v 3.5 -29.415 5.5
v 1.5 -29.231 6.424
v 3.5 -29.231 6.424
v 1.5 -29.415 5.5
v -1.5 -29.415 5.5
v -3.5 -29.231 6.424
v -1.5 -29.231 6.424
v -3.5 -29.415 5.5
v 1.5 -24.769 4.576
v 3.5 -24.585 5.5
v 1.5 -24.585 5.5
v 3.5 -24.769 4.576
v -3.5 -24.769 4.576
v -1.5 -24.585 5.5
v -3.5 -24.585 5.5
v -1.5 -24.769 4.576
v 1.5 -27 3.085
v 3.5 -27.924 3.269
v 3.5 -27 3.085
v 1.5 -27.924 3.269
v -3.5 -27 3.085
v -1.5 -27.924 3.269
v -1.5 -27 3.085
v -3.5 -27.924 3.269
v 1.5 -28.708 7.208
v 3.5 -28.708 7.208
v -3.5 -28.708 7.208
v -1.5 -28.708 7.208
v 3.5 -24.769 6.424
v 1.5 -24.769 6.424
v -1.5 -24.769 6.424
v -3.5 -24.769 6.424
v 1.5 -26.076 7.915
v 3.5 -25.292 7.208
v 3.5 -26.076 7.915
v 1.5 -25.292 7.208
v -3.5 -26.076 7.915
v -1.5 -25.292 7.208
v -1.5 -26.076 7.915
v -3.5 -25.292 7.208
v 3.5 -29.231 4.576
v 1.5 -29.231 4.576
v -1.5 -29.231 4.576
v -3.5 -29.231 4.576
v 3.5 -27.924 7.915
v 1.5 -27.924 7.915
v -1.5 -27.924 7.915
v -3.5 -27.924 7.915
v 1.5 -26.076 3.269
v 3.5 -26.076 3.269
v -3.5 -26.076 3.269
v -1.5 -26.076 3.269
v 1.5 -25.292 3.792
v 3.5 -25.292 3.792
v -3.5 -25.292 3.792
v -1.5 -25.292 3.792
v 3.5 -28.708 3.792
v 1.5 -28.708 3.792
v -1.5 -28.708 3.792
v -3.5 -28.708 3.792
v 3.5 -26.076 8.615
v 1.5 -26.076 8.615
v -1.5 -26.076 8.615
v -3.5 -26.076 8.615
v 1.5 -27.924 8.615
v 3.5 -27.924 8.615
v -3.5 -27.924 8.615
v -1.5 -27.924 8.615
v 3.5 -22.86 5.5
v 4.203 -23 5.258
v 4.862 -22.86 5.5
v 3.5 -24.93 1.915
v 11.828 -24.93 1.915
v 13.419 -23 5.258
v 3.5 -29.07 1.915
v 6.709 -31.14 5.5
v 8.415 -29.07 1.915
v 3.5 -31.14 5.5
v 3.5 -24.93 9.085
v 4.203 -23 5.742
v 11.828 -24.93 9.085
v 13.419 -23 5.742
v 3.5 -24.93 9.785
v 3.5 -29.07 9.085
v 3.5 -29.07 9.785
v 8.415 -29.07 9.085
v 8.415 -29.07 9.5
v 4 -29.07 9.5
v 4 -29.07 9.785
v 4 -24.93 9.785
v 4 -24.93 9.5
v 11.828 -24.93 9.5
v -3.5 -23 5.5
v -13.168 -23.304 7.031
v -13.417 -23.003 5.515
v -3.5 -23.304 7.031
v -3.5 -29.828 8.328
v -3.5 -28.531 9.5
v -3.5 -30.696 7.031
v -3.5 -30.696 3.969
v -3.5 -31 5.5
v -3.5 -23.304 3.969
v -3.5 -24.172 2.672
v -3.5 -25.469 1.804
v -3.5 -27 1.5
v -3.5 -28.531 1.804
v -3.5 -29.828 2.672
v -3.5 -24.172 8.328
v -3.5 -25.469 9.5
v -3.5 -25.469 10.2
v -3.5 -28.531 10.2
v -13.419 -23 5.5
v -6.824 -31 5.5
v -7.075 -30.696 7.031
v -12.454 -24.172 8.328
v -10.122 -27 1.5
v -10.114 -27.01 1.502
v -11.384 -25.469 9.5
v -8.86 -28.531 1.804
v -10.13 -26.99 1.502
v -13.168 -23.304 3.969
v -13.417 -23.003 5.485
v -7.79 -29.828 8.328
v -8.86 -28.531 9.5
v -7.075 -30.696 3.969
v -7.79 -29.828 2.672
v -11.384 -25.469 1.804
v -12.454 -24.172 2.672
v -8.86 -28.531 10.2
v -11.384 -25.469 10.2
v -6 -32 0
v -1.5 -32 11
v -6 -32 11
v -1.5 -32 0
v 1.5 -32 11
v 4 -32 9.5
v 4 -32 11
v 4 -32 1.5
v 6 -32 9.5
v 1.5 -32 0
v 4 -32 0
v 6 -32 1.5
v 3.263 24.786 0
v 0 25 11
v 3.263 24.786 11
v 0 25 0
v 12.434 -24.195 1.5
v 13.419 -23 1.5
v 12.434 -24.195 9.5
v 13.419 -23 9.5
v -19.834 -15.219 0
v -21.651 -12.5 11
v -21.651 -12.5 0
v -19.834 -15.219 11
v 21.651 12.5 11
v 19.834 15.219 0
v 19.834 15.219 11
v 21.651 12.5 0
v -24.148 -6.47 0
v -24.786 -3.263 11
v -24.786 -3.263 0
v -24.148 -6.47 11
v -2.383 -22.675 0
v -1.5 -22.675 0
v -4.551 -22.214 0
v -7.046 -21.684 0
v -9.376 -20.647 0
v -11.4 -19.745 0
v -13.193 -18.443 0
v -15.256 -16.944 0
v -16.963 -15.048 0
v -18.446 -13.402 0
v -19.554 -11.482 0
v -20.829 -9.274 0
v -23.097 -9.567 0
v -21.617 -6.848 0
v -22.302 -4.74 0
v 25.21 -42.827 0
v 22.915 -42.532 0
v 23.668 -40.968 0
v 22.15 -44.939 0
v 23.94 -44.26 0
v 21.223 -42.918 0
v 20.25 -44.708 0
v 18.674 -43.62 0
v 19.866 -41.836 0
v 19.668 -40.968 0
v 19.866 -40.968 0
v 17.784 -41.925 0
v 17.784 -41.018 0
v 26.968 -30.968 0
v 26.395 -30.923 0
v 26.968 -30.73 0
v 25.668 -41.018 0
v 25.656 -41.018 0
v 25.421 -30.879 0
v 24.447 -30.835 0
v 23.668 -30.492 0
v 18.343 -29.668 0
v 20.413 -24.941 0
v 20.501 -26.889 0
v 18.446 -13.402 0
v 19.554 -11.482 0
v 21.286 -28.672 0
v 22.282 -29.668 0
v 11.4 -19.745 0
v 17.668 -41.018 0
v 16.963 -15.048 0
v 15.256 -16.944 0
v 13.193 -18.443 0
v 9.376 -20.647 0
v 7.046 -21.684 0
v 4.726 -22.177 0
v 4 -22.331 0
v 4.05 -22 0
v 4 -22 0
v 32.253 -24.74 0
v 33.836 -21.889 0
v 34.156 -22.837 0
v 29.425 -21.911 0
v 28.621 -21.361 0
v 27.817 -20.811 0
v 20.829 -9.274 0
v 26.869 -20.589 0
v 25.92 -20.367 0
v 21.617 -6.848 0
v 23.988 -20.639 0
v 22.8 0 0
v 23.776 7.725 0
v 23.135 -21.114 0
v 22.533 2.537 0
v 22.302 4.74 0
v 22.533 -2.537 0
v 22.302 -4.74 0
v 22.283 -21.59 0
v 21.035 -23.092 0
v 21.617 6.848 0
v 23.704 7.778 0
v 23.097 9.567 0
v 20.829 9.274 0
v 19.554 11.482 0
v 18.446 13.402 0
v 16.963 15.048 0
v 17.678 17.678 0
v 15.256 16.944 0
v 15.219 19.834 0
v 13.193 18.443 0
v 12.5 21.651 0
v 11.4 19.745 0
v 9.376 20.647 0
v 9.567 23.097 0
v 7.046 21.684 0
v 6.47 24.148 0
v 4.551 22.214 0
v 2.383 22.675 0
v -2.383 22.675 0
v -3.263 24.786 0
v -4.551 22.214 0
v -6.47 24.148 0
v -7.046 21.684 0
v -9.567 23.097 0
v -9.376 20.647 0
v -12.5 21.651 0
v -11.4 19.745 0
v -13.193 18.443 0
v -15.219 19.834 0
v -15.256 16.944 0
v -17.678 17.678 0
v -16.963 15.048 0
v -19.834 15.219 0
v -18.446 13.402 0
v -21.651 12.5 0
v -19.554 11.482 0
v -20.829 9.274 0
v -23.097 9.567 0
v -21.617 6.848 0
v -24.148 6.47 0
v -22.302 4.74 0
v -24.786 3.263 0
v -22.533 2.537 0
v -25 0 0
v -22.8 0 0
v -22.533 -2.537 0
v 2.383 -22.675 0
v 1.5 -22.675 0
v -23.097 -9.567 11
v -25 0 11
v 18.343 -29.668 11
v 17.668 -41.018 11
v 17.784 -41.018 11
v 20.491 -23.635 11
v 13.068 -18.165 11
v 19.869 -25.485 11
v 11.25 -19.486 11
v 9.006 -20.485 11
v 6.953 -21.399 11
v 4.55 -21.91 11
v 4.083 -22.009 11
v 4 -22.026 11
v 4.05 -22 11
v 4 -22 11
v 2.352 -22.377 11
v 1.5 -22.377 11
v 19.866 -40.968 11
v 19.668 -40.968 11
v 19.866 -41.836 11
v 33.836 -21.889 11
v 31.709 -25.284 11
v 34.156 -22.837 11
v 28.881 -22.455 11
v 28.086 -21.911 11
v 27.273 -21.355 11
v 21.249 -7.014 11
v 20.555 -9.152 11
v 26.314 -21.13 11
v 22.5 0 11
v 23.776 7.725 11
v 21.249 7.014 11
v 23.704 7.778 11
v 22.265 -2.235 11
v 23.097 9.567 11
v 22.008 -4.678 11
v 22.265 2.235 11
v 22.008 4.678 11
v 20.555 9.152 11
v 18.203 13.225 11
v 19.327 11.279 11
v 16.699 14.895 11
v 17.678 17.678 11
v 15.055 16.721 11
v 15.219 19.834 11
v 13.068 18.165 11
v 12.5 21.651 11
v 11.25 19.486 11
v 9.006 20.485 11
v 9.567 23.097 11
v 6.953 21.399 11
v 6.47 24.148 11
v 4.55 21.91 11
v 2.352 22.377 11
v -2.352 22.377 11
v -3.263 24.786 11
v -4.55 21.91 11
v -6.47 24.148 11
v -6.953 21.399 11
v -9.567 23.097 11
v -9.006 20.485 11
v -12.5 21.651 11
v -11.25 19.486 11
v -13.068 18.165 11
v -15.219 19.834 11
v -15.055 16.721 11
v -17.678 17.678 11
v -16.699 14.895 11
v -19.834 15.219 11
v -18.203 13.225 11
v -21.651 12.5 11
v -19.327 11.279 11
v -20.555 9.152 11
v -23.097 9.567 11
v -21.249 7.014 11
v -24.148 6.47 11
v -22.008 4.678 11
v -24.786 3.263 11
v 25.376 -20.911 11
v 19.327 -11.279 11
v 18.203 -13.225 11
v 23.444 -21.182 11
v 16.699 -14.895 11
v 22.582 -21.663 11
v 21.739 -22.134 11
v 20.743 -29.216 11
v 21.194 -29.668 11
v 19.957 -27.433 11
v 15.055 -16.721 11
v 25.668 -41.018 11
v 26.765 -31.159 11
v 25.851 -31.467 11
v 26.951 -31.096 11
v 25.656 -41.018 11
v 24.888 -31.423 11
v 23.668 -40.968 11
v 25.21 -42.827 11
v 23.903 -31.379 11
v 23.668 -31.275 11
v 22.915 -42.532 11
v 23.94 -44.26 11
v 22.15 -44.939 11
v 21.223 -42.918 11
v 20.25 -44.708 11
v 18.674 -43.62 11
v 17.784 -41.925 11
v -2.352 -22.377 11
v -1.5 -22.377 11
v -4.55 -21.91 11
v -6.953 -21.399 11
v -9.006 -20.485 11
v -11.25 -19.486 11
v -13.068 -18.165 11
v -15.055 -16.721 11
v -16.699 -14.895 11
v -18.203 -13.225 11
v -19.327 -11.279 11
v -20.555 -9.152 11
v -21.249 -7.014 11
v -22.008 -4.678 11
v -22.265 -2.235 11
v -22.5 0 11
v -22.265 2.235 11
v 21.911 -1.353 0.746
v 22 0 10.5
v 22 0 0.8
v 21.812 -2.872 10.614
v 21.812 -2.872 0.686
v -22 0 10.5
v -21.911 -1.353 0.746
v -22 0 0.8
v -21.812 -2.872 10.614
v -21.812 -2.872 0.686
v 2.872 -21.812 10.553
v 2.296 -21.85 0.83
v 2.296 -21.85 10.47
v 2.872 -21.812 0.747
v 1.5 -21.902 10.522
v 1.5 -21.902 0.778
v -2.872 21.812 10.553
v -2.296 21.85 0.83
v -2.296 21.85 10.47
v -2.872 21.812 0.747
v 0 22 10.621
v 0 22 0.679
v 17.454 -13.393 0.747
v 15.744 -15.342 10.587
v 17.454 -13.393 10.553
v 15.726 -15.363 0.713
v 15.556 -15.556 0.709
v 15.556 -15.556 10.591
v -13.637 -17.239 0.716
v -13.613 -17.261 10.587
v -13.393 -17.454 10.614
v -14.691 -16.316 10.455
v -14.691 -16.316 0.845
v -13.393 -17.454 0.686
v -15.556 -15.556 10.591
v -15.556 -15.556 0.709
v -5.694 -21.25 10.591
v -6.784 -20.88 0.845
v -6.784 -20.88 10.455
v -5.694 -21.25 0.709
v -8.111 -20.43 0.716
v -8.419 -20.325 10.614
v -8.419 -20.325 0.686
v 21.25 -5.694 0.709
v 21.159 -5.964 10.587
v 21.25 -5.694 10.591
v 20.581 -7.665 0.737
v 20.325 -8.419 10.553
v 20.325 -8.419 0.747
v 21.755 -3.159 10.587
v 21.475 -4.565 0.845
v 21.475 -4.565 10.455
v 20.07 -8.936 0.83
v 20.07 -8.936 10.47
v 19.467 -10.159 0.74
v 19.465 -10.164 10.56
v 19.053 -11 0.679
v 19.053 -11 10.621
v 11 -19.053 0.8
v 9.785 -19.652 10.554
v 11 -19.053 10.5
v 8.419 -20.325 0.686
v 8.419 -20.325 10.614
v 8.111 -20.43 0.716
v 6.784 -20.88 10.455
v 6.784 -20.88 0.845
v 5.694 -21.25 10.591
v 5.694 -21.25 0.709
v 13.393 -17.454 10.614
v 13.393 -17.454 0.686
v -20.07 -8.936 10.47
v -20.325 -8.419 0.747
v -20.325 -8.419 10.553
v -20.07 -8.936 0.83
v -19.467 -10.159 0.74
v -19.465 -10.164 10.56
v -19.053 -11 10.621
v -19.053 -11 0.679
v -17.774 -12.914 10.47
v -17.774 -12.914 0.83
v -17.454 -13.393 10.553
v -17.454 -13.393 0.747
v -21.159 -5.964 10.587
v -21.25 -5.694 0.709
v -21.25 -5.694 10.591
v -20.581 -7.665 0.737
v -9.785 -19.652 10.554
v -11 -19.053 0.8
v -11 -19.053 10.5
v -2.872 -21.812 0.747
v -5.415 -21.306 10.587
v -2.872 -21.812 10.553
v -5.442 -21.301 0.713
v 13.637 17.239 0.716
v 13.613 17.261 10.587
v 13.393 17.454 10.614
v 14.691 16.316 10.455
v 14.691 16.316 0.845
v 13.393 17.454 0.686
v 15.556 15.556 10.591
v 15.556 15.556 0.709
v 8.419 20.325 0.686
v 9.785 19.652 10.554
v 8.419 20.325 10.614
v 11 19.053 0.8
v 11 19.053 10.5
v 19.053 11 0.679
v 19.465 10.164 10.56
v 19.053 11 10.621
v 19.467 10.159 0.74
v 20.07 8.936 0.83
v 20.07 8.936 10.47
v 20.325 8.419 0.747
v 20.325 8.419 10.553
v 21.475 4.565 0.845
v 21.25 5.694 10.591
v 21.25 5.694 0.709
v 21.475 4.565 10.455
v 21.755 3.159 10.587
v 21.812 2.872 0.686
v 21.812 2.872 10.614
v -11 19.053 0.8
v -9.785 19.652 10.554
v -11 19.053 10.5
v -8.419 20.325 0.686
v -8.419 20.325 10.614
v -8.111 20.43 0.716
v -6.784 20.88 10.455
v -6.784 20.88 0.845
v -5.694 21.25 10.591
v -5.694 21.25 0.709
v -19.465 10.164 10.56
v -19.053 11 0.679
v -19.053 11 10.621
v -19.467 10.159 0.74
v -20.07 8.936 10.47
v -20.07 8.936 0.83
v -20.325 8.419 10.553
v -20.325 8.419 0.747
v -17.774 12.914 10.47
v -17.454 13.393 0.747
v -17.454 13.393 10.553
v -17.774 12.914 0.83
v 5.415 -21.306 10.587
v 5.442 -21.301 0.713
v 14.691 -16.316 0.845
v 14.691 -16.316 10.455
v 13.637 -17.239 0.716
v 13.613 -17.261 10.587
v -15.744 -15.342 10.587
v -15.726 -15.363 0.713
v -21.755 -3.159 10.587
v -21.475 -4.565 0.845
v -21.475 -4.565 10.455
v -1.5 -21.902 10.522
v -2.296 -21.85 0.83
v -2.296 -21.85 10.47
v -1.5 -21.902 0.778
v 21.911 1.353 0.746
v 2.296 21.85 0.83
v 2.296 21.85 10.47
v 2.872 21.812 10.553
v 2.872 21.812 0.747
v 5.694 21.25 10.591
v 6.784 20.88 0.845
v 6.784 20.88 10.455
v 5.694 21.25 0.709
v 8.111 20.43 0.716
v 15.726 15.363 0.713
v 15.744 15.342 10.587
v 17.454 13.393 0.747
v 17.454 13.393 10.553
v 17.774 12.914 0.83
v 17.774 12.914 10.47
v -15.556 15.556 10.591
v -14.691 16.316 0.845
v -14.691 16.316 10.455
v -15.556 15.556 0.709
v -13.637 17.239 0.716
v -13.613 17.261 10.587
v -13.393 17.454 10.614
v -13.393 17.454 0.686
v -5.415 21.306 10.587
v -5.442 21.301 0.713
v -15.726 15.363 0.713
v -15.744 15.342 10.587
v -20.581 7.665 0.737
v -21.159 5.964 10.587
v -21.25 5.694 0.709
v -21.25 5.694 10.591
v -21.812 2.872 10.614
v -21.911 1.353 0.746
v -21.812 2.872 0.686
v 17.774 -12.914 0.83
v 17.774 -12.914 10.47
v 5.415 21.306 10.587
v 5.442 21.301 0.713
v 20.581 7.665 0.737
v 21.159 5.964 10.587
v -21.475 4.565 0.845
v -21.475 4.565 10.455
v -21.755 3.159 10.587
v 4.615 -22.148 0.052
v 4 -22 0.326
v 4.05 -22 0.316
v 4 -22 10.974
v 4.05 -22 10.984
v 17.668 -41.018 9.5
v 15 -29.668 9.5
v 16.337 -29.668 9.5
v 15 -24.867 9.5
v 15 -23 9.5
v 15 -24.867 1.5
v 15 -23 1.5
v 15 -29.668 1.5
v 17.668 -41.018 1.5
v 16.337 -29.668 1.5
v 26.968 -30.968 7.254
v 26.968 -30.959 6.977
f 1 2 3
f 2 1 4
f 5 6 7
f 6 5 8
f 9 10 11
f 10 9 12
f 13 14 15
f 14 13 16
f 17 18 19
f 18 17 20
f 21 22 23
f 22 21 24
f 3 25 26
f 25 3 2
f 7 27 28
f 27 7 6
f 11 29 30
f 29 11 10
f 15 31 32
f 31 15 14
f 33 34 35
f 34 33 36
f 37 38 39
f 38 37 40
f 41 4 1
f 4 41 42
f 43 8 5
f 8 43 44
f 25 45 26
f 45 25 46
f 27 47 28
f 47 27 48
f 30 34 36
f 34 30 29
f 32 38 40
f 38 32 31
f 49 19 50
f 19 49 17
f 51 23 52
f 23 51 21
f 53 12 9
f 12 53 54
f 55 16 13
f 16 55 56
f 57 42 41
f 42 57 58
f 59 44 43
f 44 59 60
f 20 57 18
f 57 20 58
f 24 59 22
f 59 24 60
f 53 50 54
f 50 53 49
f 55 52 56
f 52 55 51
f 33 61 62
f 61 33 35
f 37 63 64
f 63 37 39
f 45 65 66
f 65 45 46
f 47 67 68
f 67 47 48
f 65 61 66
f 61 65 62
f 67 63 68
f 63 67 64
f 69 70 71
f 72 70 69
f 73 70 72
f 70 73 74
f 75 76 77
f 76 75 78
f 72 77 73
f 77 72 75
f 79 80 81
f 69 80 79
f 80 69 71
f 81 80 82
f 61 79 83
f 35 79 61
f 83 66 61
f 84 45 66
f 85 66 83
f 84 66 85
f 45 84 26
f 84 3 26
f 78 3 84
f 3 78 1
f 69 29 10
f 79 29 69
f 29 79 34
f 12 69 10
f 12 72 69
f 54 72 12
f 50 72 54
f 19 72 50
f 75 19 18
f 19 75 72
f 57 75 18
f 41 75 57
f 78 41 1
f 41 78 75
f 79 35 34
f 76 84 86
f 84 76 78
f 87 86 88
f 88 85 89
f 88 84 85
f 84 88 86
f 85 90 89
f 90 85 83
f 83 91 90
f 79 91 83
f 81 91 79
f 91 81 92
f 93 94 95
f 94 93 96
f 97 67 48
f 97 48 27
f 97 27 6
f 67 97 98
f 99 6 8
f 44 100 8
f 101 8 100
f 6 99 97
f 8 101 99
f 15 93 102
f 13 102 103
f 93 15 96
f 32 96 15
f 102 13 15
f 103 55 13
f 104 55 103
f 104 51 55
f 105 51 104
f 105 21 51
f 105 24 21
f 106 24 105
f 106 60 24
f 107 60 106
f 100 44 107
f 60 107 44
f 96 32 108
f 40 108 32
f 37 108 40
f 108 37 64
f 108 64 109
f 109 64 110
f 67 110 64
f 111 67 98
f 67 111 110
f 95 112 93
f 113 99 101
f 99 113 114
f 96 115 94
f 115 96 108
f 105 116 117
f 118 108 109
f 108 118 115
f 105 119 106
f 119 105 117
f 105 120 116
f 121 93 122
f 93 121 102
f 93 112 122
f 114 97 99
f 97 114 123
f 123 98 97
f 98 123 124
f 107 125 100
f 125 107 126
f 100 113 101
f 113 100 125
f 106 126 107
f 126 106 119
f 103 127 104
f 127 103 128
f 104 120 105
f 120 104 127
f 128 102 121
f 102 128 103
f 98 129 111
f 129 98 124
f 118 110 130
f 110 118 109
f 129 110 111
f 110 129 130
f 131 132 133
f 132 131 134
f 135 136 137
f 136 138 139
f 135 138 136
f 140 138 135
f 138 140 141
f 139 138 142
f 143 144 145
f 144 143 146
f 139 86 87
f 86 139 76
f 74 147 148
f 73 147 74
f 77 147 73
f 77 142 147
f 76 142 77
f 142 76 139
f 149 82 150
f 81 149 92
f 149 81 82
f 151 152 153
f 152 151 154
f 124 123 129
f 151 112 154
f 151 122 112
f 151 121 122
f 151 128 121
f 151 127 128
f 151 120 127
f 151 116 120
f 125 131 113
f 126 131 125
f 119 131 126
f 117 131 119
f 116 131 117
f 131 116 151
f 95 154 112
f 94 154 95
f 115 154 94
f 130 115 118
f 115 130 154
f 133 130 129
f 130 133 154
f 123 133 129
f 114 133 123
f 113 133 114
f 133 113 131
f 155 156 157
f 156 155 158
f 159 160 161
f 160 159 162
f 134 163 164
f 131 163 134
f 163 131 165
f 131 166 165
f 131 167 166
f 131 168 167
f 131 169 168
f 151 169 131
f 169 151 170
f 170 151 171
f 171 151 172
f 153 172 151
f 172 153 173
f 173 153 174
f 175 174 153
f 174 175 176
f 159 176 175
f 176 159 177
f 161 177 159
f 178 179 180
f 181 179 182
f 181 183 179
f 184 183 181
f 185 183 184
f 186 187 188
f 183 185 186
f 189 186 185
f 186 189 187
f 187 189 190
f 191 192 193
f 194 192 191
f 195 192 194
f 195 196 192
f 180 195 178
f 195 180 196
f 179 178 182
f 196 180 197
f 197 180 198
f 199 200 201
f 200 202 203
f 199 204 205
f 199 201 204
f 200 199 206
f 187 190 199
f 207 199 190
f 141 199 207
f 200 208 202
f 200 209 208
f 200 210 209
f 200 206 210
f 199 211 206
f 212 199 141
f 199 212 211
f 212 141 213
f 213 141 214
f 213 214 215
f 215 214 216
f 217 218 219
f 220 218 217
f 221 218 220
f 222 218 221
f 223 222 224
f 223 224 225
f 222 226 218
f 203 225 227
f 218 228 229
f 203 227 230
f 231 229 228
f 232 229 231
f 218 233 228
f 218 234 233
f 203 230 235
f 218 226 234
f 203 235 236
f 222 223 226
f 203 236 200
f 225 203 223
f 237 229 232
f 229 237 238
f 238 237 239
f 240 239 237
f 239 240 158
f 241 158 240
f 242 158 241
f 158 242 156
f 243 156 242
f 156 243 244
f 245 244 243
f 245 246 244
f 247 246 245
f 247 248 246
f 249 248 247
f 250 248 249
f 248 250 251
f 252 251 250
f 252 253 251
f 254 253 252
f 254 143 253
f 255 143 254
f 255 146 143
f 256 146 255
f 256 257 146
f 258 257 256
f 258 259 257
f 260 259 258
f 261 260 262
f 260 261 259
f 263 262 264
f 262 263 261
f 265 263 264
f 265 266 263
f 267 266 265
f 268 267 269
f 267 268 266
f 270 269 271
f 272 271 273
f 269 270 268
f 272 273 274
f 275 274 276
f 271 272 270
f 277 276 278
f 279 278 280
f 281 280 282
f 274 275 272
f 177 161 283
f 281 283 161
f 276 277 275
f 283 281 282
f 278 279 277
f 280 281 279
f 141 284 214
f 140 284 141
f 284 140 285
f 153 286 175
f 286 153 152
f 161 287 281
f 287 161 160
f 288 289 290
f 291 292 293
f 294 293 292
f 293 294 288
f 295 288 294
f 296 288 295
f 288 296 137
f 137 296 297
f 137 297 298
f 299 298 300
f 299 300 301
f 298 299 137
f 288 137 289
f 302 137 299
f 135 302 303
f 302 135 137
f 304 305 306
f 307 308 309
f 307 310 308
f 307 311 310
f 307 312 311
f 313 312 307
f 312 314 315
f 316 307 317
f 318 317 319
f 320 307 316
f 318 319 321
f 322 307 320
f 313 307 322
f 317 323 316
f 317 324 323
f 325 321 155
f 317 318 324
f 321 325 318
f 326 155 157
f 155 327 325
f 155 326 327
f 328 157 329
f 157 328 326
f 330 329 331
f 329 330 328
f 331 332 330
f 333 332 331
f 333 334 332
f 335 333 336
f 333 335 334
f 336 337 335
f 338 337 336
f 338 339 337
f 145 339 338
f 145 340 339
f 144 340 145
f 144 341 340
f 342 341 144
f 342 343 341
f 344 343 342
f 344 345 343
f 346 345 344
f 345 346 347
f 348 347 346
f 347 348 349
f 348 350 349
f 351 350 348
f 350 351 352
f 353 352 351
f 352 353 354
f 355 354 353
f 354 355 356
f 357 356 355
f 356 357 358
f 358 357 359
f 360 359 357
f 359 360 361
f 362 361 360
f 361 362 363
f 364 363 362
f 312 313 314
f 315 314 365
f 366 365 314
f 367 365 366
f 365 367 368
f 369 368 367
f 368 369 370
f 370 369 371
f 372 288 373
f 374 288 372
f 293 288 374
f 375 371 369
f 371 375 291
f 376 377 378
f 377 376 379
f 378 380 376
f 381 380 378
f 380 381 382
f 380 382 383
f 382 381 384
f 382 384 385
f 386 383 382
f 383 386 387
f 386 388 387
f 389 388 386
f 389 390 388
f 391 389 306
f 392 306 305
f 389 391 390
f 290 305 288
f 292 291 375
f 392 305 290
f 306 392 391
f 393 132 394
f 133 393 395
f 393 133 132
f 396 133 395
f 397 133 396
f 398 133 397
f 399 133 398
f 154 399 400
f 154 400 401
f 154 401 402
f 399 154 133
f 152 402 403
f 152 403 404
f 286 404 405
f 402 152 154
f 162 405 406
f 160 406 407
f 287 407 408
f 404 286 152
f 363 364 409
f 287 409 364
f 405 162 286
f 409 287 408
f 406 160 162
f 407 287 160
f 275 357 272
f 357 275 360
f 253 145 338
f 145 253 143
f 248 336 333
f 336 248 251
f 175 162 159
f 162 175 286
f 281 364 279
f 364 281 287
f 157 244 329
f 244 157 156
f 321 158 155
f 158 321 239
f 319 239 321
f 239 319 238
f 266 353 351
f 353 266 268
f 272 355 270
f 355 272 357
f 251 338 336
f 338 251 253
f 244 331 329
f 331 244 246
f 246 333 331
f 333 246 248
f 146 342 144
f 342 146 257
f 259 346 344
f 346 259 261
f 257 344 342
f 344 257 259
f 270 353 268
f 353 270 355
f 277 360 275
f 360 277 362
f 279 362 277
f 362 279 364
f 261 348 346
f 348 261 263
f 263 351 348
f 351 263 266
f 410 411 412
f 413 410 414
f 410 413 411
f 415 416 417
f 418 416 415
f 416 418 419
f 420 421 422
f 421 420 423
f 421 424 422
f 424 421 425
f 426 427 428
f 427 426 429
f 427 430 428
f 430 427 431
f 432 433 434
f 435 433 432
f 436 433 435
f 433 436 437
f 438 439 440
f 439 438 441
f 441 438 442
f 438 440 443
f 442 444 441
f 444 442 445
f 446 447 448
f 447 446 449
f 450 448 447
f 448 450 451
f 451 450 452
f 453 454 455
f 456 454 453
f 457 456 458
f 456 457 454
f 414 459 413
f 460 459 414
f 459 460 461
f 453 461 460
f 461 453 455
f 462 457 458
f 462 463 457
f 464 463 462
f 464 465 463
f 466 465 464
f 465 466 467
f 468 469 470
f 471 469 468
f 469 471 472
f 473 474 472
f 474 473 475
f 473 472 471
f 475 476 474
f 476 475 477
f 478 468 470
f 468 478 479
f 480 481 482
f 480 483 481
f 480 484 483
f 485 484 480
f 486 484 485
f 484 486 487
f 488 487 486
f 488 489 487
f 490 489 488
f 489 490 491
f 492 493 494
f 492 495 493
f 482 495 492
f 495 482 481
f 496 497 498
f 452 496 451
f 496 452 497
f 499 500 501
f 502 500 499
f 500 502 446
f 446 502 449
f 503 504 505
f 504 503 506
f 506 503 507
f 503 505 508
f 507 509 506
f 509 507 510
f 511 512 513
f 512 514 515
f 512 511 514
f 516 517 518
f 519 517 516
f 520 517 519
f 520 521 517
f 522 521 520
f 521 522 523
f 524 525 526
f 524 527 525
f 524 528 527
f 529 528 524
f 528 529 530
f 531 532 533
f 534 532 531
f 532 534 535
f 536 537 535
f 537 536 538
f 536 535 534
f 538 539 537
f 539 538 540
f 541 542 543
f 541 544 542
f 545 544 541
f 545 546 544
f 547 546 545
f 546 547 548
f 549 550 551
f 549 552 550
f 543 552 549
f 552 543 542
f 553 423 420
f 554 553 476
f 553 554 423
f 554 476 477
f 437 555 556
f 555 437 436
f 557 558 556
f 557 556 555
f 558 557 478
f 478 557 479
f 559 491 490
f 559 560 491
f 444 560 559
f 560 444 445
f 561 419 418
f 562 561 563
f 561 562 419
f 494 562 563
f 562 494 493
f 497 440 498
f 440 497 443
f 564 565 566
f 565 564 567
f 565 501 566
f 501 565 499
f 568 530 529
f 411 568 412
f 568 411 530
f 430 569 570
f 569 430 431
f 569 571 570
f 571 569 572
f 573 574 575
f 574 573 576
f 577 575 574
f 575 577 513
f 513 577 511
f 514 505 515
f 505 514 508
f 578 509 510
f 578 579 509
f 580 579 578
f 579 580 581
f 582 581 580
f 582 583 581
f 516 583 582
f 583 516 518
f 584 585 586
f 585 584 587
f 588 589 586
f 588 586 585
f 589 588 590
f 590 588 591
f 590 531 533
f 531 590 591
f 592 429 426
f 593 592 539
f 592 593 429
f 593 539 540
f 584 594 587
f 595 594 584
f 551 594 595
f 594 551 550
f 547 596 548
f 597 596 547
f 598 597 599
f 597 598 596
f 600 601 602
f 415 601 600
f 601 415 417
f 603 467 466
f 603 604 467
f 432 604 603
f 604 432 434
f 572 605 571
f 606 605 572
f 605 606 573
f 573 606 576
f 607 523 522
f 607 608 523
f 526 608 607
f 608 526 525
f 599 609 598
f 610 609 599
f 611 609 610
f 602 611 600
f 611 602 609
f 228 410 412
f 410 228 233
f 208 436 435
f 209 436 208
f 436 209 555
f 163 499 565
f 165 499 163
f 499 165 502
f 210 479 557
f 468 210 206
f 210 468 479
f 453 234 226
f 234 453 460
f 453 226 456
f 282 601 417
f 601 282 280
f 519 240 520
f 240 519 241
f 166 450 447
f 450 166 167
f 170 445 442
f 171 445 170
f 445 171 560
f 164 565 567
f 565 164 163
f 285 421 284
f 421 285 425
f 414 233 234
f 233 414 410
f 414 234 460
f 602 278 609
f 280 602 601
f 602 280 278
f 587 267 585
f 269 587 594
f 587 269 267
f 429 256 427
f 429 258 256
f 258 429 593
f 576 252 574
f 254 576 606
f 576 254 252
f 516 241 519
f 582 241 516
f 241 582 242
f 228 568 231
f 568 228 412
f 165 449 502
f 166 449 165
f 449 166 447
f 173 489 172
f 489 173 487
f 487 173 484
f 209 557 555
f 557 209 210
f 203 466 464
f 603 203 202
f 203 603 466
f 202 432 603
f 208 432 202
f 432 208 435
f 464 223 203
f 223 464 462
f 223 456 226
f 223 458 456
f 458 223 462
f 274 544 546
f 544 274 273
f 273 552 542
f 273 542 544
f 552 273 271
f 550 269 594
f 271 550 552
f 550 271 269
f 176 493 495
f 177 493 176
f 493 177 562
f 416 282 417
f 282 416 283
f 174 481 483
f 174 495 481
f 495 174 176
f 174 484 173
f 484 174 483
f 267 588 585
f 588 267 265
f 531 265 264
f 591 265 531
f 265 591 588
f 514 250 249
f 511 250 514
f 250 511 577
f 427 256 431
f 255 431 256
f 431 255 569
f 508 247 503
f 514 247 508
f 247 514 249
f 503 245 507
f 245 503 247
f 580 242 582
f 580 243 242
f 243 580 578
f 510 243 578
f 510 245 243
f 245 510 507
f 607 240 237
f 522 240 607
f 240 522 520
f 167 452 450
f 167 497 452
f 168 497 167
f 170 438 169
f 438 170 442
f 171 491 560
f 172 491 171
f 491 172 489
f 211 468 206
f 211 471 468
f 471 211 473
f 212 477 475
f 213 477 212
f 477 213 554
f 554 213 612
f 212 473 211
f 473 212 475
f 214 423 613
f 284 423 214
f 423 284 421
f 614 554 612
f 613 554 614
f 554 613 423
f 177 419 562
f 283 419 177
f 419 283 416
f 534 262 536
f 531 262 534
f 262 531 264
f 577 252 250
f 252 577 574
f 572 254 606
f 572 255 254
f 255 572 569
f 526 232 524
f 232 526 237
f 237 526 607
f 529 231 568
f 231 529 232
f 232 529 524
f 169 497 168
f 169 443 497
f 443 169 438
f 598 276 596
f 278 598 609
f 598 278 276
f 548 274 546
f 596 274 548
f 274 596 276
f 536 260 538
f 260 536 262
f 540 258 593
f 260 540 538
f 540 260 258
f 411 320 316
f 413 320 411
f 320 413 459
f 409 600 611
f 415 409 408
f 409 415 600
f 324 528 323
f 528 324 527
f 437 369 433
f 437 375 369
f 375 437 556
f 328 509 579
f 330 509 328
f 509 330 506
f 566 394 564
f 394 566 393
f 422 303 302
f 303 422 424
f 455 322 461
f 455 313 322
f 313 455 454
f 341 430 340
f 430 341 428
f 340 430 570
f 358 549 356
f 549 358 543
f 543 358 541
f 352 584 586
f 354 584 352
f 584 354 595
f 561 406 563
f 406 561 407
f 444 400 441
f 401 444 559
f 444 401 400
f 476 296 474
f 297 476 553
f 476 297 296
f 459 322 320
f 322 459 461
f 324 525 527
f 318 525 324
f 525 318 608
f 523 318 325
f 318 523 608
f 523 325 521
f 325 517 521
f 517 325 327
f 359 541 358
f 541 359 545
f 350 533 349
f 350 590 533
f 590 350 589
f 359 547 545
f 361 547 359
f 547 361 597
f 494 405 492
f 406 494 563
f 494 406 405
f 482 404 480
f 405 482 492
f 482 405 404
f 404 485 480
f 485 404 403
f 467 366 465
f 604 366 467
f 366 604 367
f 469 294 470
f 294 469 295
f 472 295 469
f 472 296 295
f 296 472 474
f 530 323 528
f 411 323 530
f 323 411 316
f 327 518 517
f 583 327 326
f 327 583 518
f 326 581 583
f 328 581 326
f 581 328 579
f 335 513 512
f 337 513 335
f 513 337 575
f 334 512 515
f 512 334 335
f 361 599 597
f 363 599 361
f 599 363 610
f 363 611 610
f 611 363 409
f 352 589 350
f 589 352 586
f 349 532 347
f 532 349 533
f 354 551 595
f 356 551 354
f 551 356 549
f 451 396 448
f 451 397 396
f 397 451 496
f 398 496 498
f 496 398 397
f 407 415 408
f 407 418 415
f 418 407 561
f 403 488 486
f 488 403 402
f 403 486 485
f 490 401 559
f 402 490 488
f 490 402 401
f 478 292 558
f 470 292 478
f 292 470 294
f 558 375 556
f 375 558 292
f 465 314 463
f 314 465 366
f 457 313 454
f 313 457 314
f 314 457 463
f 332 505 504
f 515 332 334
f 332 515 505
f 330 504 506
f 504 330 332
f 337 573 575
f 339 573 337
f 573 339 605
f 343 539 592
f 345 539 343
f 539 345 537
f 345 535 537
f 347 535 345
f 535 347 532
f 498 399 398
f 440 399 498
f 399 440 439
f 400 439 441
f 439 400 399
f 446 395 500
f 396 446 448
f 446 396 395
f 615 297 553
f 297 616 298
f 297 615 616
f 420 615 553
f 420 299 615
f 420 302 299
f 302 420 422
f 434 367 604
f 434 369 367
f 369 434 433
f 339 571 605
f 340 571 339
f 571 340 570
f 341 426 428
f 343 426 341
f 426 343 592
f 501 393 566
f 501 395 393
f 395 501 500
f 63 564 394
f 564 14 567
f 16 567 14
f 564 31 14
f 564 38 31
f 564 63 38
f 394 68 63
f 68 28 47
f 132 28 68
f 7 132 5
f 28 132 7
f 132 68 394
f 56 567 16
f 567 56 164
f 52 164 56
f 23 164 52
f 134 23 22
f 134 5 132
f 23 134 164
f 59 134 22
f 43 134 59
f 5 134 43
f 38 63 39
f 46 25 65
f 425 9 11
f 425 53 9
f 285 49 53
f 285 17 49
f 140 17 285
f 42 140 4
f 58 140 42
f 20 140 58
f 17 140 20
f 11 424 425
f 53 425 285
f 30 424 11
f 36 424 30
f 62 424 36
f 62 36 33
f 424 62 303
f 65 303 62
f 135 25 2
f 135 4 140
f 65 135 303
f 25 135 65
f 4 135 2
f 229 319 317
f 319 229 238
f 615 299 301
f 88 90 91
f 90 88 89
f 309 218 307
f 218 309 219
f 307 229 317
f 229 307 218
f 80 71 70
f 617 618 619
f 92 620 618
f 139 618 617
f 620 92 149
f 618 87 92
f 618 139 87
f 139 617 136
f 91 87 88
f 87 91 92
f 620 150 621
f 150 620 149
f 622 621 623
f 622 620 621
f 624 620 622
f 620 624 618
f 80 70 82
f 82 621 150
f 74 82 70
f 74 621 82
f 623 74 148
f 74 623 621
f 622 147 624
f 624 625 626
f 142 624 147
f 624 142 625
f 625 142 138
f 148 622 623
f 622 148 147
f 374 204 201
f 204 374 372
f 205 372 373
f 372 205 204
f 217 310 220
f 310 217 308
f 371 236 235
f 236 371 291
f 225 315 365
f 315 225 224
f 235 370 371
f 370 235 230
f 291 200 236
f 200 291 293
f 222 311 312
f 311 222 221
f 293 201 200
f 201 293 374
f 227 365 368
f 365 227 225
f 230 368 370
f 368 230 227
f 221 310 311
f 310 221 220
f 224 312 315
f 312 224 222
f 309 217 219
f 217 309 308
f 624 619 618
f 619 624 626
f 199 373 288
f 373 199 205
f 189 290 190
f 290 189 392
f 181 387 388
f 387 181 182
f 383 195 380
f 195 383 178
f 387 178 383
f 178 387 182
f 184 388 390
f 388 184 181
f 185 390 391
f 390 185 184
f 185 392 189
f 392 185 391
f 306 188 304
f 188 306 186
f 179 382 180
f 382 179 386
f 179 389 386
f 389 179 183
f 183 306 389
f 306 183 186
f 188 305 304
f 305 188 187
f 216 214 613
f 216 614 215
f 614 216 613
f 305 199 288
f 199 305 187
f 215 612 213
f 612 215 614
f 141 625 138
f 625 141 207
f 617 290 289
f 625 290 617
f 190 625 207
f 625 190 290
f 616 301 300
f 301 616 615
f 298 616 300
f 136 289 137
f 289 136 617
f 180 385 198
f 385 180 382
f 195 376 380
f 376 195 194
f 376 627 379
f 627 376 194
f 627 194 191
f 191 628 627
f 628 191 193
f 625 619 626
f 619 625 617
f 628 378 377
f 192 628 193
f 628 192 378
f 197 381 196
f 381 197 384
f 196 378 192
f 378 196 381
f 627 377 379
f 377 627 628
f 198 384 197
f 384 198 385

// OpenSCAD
// file: cylinder_clip.scad
use <../utilities.scad>;

module cylinder_clip(r=1,t=3,opening_angle=120,wing_length=2,wing_angle=45,flat_w=10,flat_t=3,h=10,$fn=$fn){
	union(){
		difference(){
			hull(){
				cylinder(r=r+t,$fn=$fn,h=h);
				translate([-flat_w/2,-r-flat_t,0]) cube([flat_w,0.1,h]);
			}
			cylinder(r=r,$fn=$fn,h=99999,center=true);
			cylinder(r1=r+2,r2=r,$fn=$fn,h=2,center=true);
			scale([tan(opening_angle/2),1,1]) rotate([0,0,45]) translate([0,0,-1]) cube([1,1,1]*9999);
		}
		reflect([1,0,0]) translate([sin(opening_angle/2),cos(opening_angle/2),0]*(r+t/2)) hull() repeat([sin(wing_angle),cos(wing_angle),0]*wing_length,2)
			cylinder(r=t/2,h=h,$fn=16);
			
	}
}

//cylinder_clip(r=3,t=2,flat_w=6);
union(){
	cylinder_clip(r=21,t=4.5,flat_t=10,opening_angle=100,$fn=64);
	translate([-5,-22-5-20,0]) cube([10,20,10]);
}
// file: ../standard_optomechanics/cylinder_clamp.scad
use <../utilities.scad>;
d=0.05;

//for 1 inch/25mm post clamp, an inner radius of 12.8 is good.
	
module cylinder_clamp(
	inner_r=12.8, //radius of the cylinder being clamped (ish!)
	clamp_h=11, //thicknedess of the clamp along the cylinder axis
	clamp_t=4, //thickness of the clamp radially
	flat_t=8, //how thick the bottom of the clamp is (often need to allow for the mounting bolt head here)
	flat_width=15, //width of the flat base
	mounting_bolt=4, //nominal size of mounting bolt (default is 4 for M4, 0 to disable)
	nut_trap=false,
	bevel_top=0.5, //size of 45 degree bevel on top surface
	bevel_bottom=0.8 //size of 45 degree bevel on bottom of hole
	){
	assign(
		post_r = inner_r, //poor initial choice of name!
		bolt_flat_w=10, //width of the region where the bolt is
		gap_w=3 //size of the gap that is squeezed by the bolt
	)
	difference(){
		hull(){
			cylinder(h=clamp_h,r=post_r+clamp_t,center=true,$fn=48);
			translate([0,-post_r-flat_t/2,0]) cube([flat_width,flat_t,clamp_h],center=true);
			translate([0,post_r+bolt_flat_w/2,0]) cube([12,bolt_flat_w,clamp_h],center=true);
		}
	
		cylinder(h=9999,r=post_r,center=true,$fn=48); //cylinder being clamped
		//bevels, top and bottom
		translate([0,0,-clamp_h/2]) cylinder(r1=post_r+3*bevel_bottom,r2=post_r-bevel_bottom,h=4*bevel_bottom,center=true);
		translate([0,0,clamp_h/2]) cylinder(r2=post_r+3*bevel_top,r1=post_r-bevel_top,h=4*bevel_top,center=true);
		//gap (squeezed by bolt)
		translate([0,999,0]) cube([gap_w,999*2,999],center=true); //gap
	
		//clamping bolt
		translate([gap_w/2+2,post_r+bolt_flat_w/2,0]) rotate([0,0,-90]) nut_y(4,h=999,shaft=true);
		translate([-gap_w/2-2,post_r+bolt_flat_w/2,0]) rotate([0,0,90]) cylinder_with_45deg_top(r=4,h=999,$fn=16); //counterbore for nut head
	
		if(mounting_bolt > 0){
			//mounting bolt
			translate([0,-post_r-4.5,0]) rotate([-90,0,0]){
				intersection(){
					rotate([90,0,0])
						if(nut_trap){
							nut_y(mounting_bolt,fudge=1.15,shaft=true,h=999);
						}else{
							screw_y(mounting_bolt,fudge=1.07,shaft=true,h=999);
						}
					cube([inner_r*2,inner_r*2,clamp_h*2],center=true);
				}
			}
		}
		//in the case of thick clamps with thin flats, this keeps the bottom flat
		translate([0,-inner_r-flat_t-999,0]) cube([9999,999*2,9999],center=true);
	}
}

module cylinder_clamp_v(
	inner_r=12.8, //radius of the cylinder being clamped (ish!)
	clamp_h=10, //width of the clamp along the cylinder (y) axis
	clamp_t=4, //thickness of the clamp radially
	flat_t=8, //how thick the bottom of the clamp is (often need to allow for the mounting bolt head here)
	flat_width=15, //width of the flat base
	mounting_bolt=4, //nominal size of mounting bolt (default is 4 for M4, 0 to disable)
	bevel=0.5 //put a 45 degree bevel on the edges of the hole
	){
	assign(
		post_r = inner_r, //poor initial choice of name!
		bolt_flat_w=11, //width of the region where the bolt is
		gap_w=2*inner_r*sin(45/2),//sin(acos(1-(9/2-4/2*1.22)/inner_r))*inner_r //size of the gap that is squeezed by the bolt
		bolt_z = inner_r+4/2*1.22+d //position of bolt (so bolt just clears the cylinder we're clamping
	)assign( //the second assign statement allows us to use gap_w
		bolt_span=gap_w+4+d//max(2*inner_r*sin(acos(1-(9/2-4/2*1.22)/inner_r)), gap_w+4)
	)
	difference(){
		hull(){
			rotate([90,0,0]) cylinder(h=clamp_h,r=inner_r+clamp_t,center=true,$fn=48);
			translate([0,0,-inner_r-flat_t/2]) cube([flat_width,clamp_h,flat_t],center=true);
			translate([0,0,bolt_z]) cube([gap_w+9,clamp_h,bolt_flat_w],center=true);
		}
	
		cylinder_with_45deg_top(h=9999,r=post_r,center=true,$fn=48); //cylinder being clamped
		reflect([0,1,0]) translate([0,clamp_h/2,0]) rotate([90,0,0]) cylinder(r1=post_r+3*bevel,r2=post_r-bevel,h=4*bevel,center=true); //bevel
		translate([0,0,999]) cube([gap_w,999,999*2],center=true); //gap
	
		//clamping bolt
		translate([bolt_span/2,0,bolt_z]) rotate([0,0,-90]) nut_y(4,h=999,shaft=true);
		translate([-bolt_span/2,0,bolt_z]) rotate([0,0,90]) cylinder_with_45deg_top(r=4,h=999,$fn=16); //counterbore for nut head
	
		if(mounting_bolt > 0){
			//mounting bolt
			translate([0,0,-post_r-4.5]){
				cylinder(r=mounting_bolt*1.1,h=post_r,$fn=16);
				cylinder(r=mounting_bolt/2*1.22,h=flat_t*2,center=true,$fn=16);
			}
		}
		translate([0,0,-inner_r-flat_t-999]) cube([9999,9999,999*2],center=true);
	}
}

translate([0,30,0]) cylinder_clamp_v(30.5/2, 10, flat_width=24, mounting_bolt=4, flat_t=8);

cylinder_clamp(30.5/2, flat_width=24, mounting_bolt=4, flat_t=8,nut_trap=true);
// main file
use <../standard_optomechanics/cylinder_clamp.scad>;
use <./cylinder_clip.scad>;
use <../utilities.scad>;

t = 3;
h = 11;
inner_r = 22;
rack_r = 5+0.3;

tube_to_tube = 9;
rack = [1,-1,0]/sqrt(2) * (inner_r + rack_r + tube_to_tube);

d=0.05;

module rack(){
	translate(rack) rotate([0,-4,45]) //rotate([0,2.5,-90])
				cylinder(r=rack_r,h=999*2,center=true);
}

union(){
	translate([0,0,h/2]) mirror([0,1,0]) cylinder_clamp(inner_r=inner_r,clamp_h=h,flat_width=0,flat_t=t,mounting_bolt=0,clamp_t=t);

	difference(){
		union(){
			hull(){ //this bit holds the rack tube
				rotate(18) translate([inner_r+t/2,0,0]) cylinder(r=t/2,h=h);
				translate(rack) cylinder(r=5+4,h=h);
                translate([4,rack[1],0]) cube([d,-rack[1],h]);
			}
		}
	
		cylinder(r=inner_r+t/2,h=999,center=true); //clearance for frame tube 
        
        //clearance for nut/bolt
        translate([0,-inner_r-5,h/2]) cube([30,8,h-3],center=true);

		//clearance for rack
		hull() repeat([999,-999,0],2) rack();
		translate(rack) rotate(45) translate([0,-4-999,0]) cube([1,1,1]*999*2,center=true);
		translate(rack + [0,-4,-1]) mirror([1,0,0]) mirror([0,1,0]) cube([1,1,1]*999);
	}
}

roc=2;
flex_t=2;
clip = [2,rack_r-4,h];
pivot = rack + [-clip[0]-roc, -rack_r - 10,0];
module clip_strut(h){
    hull(){
        translate(pivot + [-roc-flex_t,-d,0]) cube([flex_t,d,h]);
        translate([rack[0]-clip[0]-rack_r-flex_t-0.5,rack[1],0]) cube([flex_t,d,h]);
    }
}
difference(){
    union(){
        translate(rack) hull(){ //locking bit
            translate([-clip[0],-rack_r,0]) cube([rack_r-2,rack_r-4,h]);
            translate([-clip[0],-rack_r-10-d,0]) cube([flex_t,d,h]);
        }
        translate(pivot) difference(){
            cylinder(r=2+flex_t,h=h);
            cylinder(r=2,h=999,center=true);
            translate([-10,0,-10]) cube([1,1,1]*999);
        }
        clip_strut(h);
        repeat([0,0,h-1.5],2) hull(){
            clip_strut(1.5);
            translate([4,-inner_r-10,0]) cube([d,10,1.5]);
        }
    }
    rack();
}

/*
null()	difference(){
	//	hull(){
//			translate(rack - [
		cylinder(r=inner_r+1,h=999,center=true);
		translate([inner_r,inner_r,0]) repeat([999,0,0],2) rotate([-2.5,0,-90])
				translate([0,0,-999]) cylinder(r=5+0.2,h=999*2,center=true);
	}
	difference(){
		translate([4,0,-h/2]) cube([inner_r-4-1,inner_r+10,h]); //support for clip
		cylinder(r=inner_r+t/2,h=999,center=true); //clearance for tube 
		translate([0,0,-8/2]) cube([14,999,8+0.3]); //nut entry
		translate([0,inner_r+5,0]) rotate(-90) cylinder_with_45deg_top(r=2.5,h=20,$fn=16); //bolt clearance
	}
}
*/
